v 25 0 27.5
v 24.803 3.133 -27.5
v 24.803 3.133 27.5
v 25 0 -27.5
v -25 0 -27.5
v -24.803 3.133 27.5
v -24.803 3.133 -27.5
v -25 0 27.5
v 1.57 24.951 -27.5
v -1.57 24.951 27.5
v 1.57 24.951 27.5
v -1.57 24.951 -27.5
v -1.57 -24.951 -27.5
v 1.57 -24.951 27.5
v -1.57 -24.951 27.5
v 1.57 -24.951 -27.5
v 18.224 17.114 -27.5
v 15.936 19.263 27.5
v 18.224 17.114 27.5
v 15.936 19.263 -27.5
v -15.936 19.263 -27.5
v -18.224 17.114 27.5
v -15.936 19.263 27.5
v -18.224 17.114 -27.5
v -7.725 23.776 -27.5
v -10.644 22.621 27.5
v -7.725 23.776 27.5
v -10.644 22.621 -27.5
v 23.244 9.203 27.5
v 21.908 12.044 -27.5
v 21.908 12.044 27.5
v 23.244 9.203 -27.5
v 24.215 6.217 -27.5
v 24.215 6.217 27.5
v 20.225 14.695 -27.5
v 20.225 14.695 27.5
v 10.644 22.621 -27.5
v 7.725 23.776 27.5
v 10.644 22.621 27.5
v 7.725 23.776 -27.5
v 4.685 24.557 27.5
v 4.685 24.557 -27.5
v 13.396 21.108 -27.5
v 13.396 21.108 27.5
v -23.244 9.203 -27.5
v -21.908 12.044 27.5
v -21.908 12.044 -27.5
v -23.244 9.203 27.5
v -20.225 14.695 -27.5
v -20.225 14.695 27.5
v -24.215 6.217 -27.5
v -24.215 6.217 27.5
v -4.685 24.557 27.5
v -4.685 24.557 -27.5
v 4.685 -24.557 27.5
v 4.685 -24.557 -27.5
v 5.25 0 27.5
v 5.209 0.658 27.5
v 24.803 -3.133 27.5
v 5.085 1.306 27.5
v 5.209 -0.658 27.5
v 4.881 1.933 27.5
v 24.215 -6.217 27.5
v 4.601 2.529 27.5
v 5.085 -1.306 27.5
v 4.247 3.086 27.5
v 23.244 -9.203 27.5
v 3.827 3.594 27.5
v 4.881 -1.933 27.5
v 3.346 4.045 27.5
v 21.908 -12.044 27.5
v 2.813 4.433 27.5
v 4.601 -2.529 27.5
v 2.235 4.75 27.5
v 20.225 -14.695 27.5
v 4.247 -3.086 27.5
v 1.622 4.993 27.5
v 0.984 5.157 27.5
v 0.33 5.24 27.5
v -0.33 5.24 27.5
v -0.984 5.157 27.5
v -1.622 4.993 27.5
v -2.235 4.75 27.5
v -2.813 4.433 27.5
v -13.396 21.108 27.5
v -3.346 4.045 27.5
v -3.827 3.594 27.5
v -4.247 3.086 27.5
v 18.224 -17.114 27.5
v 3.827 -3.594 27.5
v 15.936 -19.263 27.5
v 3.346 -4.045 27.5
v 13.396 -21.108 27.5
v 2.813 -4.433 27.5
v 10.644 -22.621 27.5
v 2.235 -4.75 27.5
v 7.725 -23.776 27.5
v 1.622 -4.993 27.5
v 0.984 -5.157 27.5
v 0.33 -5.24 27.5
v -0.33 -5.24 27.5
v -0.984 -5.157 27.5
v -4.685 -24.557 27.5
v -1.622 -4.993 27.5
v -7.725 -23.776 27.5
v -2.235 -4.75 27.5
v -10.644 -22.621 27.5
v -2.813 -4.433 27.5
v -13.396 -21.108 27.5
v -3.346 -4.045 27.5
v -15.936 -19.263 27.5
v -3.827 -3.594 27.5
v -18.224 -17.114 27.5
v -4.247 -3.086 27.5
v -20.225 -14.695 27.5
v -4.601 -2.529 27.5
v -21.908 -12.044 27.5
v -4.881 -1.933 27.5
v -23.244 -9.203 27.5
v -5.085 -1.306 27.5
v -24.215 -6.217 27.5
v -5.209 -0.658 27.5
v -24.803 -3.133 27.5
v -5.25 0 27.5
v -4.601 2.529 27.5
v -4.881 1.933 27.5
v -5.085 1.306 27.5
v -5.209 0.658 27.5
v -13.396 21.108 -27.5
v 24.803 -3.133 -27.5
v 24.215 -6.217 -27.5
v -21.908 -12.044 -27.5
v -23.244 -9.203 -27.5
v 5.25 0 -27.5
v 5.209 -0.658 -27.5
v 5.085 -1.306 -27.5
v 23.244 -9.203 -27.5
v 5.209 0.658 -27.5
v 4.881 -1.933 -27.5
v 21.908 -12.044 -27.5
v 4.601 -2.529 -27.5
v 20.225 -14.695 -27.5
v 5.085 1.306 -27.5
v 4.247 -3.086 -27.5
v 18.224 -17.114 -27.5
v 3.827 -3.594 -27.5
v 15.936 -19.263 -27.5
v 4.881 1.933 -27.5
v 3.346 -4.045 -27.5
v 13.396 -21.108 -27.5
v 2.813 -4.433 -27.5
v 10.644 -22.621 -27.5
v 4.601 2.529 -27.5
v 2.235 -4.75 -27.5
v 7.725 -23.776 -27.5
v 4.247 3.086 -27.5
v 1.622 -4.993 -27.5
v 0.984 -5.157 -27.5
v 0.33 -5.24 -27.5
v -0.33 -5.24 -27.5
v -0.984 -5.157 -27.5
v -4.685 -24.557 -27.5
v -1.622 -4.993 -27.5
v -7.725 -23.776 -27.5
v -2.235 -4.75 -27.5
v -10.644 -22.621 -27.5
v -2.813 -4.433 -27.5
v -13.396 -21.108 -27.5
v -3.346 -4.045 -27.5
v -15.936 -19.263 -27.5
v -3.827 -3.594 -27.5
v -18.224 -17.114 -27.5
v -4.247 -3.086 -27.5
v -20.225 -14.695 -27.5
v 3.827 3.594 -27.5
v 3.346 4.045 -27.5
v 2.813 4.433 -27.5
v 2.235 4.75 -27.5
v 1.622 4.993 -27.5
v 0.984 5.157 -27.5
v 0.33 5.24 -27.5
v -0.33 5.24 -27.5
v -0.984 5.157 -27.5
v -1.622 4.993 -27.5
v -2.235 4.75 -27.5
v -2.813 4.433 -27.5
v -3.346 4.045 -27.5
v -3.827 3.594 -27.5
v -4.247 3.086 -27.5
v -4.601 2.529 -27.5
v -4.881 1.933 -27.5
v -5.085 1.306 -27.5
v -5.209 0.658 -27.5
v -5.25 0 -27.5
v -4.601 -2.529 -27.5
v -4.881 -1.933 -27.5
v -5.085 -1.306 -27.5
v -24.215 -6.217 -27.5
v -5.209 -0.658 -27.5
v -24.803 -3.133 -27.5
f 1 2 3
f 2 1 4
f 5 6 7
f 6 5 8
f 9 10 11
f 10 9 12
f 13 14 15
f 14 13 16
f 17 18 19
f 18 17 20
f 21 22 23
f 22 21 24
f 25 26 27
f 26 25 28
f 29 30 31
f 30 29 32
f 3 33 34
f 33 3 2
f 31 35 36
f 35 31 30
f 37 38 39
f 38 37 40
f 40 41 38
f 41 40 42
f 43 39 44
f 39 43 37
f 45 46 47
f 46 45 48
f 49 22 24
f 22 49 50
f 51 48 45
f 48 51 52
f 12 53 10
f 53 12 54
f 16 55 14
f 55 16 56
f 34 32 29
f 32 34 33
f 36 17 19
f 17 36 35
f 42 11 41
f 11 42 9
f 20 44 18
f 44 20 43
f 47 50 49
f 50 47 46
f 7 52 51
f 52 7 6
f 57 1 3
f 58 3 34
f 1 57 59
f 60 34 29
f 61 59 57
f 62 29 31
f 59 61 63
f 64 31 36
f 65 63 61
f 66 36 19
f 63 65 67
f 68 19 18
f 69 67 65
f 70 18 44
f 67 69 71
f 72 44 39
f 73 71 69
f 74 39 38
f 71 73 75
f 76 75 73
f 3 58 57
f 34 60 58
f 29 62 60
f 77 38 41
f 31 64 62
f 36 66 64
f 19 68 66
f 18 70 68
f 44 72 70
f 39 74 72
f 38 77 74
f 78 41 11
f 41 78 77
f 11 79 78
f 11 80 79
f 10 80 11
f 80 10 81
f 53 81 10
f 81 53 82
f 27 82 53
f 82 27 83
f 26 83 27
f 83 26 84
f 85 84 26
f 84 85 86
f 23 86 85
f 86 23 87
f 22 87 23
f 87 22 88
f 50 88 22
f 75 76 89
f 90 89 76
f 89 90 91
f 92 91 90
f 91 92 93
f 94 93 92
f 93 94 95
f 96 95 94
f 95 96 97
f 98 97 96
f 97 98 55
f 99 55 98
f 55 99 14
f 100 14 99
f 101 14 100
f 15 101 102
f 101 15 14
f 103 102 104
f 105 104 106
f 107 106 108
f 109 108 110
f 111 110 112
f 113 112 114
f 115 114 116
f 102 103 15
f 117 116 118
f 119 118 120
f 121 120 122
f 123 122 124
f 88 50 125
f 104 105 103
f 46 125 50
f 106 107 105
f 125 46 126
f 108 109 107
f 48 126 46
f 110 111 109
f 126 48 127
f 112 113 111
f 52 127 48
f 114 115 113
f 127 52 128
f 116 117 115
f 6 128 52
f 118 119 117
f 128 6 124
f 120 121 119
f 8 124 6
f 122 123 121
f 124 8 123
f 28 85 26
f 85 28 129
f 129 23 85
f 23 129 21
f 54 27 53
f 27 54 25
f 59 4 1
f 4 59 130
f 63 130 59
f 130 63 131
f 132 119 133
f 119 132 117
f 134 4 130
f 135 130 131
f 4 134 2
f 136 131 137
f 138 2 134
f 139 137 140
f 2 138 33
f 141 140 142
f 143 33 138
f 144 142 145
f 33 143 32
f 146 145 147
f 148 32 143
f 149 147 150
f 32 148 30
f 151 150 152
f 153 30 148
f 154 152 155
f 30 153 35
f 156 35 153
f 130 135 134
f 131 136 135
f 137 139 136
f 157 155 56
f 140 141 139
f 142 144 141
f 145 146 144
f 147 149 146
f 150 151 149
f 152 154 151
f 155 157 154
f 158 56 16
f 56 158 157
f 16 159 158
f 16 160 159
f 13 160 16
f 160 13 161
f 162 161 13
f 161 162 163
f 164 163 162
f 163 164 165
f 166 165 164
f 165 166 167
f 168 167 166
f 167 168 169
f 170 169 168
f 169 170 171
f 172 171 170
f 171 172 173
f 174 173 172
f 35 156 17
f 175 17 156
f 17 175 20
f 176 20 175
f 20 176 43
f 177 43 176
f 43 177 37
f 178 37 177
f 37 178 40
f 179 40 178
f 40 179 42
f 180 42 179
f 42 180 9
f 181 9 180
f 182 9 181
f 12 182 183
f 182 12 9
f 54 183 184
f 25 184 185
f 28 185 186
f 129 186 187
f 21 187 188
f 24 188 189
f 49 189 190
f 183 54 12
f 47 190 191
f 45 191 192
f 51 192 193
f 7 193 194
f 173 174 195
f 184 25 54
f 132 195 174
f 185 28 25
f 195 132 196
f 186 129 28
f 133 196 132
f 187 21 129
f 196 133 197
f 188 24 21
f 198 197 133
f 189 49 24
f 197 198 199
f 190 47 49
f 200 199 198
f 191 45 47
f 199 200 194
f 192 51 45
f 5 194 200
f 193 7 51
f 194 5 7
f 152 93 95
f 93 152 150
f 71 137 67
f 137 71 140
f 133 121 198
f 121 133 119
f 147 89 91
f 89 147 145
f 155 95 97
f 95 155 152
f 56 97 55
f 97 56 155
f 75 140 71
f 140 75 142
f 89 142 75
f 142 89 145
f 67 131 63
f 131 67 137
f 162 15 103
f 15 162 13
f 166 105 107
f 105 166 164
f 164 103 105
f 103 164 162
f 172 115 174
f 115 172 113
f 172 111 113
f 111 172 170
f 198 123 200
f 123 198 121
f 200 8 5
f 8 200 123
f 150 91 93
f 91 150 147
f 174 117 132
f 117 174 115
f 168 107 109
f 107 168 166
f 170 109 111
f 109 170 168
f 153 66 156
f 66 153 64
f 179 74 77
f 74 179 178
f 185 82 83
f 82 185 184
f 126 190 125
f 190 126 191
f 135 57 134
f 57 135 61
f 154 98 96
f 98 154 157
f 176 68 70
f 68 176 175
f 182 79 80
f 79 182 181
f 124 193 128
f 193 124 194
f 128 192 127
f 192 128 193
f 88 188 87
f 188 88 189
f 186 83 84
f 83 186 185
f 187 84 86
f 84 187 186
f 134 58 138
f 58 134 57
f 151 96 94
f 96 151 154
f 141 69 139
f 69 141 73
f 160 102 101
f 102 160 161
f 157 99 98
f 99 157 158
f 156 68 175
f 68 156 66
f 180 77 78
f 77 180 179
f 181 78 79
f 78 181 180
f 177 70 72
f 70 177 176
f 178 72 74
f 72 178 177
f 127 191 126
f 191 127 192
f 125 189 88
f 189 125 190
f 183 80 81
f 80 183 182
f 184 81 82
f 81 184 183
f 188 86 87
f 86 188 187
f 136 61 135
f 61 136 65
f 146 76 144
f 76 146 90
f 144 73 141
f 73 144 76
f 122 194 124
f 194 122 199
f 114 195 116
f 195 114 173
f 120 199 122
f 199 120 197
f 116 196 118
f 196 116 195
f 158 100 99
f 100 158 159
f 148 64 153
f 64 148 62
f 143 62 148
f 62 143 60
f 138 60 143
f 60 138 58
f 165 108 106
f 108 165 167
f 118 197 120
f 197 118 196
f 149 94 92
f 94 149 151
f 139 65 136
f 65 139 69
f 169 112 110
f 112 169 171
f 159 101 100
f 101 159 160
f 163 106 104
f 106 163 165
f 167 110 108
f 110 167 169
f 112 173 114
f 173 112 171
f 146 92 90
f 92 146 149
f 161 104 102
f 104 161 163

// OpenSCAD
$fn = 50;


difference() {
	union() {
		translate(v = [0, 0, -27.5000000000]) {
			cylinder(h = 55, r = 25.0000000000);
		}
	}
	union() {
		translate(v = [0, 0, -100.0000000000]) {
			cylinder(h = 200, r = 5.2500000000);
		}
	}
}
